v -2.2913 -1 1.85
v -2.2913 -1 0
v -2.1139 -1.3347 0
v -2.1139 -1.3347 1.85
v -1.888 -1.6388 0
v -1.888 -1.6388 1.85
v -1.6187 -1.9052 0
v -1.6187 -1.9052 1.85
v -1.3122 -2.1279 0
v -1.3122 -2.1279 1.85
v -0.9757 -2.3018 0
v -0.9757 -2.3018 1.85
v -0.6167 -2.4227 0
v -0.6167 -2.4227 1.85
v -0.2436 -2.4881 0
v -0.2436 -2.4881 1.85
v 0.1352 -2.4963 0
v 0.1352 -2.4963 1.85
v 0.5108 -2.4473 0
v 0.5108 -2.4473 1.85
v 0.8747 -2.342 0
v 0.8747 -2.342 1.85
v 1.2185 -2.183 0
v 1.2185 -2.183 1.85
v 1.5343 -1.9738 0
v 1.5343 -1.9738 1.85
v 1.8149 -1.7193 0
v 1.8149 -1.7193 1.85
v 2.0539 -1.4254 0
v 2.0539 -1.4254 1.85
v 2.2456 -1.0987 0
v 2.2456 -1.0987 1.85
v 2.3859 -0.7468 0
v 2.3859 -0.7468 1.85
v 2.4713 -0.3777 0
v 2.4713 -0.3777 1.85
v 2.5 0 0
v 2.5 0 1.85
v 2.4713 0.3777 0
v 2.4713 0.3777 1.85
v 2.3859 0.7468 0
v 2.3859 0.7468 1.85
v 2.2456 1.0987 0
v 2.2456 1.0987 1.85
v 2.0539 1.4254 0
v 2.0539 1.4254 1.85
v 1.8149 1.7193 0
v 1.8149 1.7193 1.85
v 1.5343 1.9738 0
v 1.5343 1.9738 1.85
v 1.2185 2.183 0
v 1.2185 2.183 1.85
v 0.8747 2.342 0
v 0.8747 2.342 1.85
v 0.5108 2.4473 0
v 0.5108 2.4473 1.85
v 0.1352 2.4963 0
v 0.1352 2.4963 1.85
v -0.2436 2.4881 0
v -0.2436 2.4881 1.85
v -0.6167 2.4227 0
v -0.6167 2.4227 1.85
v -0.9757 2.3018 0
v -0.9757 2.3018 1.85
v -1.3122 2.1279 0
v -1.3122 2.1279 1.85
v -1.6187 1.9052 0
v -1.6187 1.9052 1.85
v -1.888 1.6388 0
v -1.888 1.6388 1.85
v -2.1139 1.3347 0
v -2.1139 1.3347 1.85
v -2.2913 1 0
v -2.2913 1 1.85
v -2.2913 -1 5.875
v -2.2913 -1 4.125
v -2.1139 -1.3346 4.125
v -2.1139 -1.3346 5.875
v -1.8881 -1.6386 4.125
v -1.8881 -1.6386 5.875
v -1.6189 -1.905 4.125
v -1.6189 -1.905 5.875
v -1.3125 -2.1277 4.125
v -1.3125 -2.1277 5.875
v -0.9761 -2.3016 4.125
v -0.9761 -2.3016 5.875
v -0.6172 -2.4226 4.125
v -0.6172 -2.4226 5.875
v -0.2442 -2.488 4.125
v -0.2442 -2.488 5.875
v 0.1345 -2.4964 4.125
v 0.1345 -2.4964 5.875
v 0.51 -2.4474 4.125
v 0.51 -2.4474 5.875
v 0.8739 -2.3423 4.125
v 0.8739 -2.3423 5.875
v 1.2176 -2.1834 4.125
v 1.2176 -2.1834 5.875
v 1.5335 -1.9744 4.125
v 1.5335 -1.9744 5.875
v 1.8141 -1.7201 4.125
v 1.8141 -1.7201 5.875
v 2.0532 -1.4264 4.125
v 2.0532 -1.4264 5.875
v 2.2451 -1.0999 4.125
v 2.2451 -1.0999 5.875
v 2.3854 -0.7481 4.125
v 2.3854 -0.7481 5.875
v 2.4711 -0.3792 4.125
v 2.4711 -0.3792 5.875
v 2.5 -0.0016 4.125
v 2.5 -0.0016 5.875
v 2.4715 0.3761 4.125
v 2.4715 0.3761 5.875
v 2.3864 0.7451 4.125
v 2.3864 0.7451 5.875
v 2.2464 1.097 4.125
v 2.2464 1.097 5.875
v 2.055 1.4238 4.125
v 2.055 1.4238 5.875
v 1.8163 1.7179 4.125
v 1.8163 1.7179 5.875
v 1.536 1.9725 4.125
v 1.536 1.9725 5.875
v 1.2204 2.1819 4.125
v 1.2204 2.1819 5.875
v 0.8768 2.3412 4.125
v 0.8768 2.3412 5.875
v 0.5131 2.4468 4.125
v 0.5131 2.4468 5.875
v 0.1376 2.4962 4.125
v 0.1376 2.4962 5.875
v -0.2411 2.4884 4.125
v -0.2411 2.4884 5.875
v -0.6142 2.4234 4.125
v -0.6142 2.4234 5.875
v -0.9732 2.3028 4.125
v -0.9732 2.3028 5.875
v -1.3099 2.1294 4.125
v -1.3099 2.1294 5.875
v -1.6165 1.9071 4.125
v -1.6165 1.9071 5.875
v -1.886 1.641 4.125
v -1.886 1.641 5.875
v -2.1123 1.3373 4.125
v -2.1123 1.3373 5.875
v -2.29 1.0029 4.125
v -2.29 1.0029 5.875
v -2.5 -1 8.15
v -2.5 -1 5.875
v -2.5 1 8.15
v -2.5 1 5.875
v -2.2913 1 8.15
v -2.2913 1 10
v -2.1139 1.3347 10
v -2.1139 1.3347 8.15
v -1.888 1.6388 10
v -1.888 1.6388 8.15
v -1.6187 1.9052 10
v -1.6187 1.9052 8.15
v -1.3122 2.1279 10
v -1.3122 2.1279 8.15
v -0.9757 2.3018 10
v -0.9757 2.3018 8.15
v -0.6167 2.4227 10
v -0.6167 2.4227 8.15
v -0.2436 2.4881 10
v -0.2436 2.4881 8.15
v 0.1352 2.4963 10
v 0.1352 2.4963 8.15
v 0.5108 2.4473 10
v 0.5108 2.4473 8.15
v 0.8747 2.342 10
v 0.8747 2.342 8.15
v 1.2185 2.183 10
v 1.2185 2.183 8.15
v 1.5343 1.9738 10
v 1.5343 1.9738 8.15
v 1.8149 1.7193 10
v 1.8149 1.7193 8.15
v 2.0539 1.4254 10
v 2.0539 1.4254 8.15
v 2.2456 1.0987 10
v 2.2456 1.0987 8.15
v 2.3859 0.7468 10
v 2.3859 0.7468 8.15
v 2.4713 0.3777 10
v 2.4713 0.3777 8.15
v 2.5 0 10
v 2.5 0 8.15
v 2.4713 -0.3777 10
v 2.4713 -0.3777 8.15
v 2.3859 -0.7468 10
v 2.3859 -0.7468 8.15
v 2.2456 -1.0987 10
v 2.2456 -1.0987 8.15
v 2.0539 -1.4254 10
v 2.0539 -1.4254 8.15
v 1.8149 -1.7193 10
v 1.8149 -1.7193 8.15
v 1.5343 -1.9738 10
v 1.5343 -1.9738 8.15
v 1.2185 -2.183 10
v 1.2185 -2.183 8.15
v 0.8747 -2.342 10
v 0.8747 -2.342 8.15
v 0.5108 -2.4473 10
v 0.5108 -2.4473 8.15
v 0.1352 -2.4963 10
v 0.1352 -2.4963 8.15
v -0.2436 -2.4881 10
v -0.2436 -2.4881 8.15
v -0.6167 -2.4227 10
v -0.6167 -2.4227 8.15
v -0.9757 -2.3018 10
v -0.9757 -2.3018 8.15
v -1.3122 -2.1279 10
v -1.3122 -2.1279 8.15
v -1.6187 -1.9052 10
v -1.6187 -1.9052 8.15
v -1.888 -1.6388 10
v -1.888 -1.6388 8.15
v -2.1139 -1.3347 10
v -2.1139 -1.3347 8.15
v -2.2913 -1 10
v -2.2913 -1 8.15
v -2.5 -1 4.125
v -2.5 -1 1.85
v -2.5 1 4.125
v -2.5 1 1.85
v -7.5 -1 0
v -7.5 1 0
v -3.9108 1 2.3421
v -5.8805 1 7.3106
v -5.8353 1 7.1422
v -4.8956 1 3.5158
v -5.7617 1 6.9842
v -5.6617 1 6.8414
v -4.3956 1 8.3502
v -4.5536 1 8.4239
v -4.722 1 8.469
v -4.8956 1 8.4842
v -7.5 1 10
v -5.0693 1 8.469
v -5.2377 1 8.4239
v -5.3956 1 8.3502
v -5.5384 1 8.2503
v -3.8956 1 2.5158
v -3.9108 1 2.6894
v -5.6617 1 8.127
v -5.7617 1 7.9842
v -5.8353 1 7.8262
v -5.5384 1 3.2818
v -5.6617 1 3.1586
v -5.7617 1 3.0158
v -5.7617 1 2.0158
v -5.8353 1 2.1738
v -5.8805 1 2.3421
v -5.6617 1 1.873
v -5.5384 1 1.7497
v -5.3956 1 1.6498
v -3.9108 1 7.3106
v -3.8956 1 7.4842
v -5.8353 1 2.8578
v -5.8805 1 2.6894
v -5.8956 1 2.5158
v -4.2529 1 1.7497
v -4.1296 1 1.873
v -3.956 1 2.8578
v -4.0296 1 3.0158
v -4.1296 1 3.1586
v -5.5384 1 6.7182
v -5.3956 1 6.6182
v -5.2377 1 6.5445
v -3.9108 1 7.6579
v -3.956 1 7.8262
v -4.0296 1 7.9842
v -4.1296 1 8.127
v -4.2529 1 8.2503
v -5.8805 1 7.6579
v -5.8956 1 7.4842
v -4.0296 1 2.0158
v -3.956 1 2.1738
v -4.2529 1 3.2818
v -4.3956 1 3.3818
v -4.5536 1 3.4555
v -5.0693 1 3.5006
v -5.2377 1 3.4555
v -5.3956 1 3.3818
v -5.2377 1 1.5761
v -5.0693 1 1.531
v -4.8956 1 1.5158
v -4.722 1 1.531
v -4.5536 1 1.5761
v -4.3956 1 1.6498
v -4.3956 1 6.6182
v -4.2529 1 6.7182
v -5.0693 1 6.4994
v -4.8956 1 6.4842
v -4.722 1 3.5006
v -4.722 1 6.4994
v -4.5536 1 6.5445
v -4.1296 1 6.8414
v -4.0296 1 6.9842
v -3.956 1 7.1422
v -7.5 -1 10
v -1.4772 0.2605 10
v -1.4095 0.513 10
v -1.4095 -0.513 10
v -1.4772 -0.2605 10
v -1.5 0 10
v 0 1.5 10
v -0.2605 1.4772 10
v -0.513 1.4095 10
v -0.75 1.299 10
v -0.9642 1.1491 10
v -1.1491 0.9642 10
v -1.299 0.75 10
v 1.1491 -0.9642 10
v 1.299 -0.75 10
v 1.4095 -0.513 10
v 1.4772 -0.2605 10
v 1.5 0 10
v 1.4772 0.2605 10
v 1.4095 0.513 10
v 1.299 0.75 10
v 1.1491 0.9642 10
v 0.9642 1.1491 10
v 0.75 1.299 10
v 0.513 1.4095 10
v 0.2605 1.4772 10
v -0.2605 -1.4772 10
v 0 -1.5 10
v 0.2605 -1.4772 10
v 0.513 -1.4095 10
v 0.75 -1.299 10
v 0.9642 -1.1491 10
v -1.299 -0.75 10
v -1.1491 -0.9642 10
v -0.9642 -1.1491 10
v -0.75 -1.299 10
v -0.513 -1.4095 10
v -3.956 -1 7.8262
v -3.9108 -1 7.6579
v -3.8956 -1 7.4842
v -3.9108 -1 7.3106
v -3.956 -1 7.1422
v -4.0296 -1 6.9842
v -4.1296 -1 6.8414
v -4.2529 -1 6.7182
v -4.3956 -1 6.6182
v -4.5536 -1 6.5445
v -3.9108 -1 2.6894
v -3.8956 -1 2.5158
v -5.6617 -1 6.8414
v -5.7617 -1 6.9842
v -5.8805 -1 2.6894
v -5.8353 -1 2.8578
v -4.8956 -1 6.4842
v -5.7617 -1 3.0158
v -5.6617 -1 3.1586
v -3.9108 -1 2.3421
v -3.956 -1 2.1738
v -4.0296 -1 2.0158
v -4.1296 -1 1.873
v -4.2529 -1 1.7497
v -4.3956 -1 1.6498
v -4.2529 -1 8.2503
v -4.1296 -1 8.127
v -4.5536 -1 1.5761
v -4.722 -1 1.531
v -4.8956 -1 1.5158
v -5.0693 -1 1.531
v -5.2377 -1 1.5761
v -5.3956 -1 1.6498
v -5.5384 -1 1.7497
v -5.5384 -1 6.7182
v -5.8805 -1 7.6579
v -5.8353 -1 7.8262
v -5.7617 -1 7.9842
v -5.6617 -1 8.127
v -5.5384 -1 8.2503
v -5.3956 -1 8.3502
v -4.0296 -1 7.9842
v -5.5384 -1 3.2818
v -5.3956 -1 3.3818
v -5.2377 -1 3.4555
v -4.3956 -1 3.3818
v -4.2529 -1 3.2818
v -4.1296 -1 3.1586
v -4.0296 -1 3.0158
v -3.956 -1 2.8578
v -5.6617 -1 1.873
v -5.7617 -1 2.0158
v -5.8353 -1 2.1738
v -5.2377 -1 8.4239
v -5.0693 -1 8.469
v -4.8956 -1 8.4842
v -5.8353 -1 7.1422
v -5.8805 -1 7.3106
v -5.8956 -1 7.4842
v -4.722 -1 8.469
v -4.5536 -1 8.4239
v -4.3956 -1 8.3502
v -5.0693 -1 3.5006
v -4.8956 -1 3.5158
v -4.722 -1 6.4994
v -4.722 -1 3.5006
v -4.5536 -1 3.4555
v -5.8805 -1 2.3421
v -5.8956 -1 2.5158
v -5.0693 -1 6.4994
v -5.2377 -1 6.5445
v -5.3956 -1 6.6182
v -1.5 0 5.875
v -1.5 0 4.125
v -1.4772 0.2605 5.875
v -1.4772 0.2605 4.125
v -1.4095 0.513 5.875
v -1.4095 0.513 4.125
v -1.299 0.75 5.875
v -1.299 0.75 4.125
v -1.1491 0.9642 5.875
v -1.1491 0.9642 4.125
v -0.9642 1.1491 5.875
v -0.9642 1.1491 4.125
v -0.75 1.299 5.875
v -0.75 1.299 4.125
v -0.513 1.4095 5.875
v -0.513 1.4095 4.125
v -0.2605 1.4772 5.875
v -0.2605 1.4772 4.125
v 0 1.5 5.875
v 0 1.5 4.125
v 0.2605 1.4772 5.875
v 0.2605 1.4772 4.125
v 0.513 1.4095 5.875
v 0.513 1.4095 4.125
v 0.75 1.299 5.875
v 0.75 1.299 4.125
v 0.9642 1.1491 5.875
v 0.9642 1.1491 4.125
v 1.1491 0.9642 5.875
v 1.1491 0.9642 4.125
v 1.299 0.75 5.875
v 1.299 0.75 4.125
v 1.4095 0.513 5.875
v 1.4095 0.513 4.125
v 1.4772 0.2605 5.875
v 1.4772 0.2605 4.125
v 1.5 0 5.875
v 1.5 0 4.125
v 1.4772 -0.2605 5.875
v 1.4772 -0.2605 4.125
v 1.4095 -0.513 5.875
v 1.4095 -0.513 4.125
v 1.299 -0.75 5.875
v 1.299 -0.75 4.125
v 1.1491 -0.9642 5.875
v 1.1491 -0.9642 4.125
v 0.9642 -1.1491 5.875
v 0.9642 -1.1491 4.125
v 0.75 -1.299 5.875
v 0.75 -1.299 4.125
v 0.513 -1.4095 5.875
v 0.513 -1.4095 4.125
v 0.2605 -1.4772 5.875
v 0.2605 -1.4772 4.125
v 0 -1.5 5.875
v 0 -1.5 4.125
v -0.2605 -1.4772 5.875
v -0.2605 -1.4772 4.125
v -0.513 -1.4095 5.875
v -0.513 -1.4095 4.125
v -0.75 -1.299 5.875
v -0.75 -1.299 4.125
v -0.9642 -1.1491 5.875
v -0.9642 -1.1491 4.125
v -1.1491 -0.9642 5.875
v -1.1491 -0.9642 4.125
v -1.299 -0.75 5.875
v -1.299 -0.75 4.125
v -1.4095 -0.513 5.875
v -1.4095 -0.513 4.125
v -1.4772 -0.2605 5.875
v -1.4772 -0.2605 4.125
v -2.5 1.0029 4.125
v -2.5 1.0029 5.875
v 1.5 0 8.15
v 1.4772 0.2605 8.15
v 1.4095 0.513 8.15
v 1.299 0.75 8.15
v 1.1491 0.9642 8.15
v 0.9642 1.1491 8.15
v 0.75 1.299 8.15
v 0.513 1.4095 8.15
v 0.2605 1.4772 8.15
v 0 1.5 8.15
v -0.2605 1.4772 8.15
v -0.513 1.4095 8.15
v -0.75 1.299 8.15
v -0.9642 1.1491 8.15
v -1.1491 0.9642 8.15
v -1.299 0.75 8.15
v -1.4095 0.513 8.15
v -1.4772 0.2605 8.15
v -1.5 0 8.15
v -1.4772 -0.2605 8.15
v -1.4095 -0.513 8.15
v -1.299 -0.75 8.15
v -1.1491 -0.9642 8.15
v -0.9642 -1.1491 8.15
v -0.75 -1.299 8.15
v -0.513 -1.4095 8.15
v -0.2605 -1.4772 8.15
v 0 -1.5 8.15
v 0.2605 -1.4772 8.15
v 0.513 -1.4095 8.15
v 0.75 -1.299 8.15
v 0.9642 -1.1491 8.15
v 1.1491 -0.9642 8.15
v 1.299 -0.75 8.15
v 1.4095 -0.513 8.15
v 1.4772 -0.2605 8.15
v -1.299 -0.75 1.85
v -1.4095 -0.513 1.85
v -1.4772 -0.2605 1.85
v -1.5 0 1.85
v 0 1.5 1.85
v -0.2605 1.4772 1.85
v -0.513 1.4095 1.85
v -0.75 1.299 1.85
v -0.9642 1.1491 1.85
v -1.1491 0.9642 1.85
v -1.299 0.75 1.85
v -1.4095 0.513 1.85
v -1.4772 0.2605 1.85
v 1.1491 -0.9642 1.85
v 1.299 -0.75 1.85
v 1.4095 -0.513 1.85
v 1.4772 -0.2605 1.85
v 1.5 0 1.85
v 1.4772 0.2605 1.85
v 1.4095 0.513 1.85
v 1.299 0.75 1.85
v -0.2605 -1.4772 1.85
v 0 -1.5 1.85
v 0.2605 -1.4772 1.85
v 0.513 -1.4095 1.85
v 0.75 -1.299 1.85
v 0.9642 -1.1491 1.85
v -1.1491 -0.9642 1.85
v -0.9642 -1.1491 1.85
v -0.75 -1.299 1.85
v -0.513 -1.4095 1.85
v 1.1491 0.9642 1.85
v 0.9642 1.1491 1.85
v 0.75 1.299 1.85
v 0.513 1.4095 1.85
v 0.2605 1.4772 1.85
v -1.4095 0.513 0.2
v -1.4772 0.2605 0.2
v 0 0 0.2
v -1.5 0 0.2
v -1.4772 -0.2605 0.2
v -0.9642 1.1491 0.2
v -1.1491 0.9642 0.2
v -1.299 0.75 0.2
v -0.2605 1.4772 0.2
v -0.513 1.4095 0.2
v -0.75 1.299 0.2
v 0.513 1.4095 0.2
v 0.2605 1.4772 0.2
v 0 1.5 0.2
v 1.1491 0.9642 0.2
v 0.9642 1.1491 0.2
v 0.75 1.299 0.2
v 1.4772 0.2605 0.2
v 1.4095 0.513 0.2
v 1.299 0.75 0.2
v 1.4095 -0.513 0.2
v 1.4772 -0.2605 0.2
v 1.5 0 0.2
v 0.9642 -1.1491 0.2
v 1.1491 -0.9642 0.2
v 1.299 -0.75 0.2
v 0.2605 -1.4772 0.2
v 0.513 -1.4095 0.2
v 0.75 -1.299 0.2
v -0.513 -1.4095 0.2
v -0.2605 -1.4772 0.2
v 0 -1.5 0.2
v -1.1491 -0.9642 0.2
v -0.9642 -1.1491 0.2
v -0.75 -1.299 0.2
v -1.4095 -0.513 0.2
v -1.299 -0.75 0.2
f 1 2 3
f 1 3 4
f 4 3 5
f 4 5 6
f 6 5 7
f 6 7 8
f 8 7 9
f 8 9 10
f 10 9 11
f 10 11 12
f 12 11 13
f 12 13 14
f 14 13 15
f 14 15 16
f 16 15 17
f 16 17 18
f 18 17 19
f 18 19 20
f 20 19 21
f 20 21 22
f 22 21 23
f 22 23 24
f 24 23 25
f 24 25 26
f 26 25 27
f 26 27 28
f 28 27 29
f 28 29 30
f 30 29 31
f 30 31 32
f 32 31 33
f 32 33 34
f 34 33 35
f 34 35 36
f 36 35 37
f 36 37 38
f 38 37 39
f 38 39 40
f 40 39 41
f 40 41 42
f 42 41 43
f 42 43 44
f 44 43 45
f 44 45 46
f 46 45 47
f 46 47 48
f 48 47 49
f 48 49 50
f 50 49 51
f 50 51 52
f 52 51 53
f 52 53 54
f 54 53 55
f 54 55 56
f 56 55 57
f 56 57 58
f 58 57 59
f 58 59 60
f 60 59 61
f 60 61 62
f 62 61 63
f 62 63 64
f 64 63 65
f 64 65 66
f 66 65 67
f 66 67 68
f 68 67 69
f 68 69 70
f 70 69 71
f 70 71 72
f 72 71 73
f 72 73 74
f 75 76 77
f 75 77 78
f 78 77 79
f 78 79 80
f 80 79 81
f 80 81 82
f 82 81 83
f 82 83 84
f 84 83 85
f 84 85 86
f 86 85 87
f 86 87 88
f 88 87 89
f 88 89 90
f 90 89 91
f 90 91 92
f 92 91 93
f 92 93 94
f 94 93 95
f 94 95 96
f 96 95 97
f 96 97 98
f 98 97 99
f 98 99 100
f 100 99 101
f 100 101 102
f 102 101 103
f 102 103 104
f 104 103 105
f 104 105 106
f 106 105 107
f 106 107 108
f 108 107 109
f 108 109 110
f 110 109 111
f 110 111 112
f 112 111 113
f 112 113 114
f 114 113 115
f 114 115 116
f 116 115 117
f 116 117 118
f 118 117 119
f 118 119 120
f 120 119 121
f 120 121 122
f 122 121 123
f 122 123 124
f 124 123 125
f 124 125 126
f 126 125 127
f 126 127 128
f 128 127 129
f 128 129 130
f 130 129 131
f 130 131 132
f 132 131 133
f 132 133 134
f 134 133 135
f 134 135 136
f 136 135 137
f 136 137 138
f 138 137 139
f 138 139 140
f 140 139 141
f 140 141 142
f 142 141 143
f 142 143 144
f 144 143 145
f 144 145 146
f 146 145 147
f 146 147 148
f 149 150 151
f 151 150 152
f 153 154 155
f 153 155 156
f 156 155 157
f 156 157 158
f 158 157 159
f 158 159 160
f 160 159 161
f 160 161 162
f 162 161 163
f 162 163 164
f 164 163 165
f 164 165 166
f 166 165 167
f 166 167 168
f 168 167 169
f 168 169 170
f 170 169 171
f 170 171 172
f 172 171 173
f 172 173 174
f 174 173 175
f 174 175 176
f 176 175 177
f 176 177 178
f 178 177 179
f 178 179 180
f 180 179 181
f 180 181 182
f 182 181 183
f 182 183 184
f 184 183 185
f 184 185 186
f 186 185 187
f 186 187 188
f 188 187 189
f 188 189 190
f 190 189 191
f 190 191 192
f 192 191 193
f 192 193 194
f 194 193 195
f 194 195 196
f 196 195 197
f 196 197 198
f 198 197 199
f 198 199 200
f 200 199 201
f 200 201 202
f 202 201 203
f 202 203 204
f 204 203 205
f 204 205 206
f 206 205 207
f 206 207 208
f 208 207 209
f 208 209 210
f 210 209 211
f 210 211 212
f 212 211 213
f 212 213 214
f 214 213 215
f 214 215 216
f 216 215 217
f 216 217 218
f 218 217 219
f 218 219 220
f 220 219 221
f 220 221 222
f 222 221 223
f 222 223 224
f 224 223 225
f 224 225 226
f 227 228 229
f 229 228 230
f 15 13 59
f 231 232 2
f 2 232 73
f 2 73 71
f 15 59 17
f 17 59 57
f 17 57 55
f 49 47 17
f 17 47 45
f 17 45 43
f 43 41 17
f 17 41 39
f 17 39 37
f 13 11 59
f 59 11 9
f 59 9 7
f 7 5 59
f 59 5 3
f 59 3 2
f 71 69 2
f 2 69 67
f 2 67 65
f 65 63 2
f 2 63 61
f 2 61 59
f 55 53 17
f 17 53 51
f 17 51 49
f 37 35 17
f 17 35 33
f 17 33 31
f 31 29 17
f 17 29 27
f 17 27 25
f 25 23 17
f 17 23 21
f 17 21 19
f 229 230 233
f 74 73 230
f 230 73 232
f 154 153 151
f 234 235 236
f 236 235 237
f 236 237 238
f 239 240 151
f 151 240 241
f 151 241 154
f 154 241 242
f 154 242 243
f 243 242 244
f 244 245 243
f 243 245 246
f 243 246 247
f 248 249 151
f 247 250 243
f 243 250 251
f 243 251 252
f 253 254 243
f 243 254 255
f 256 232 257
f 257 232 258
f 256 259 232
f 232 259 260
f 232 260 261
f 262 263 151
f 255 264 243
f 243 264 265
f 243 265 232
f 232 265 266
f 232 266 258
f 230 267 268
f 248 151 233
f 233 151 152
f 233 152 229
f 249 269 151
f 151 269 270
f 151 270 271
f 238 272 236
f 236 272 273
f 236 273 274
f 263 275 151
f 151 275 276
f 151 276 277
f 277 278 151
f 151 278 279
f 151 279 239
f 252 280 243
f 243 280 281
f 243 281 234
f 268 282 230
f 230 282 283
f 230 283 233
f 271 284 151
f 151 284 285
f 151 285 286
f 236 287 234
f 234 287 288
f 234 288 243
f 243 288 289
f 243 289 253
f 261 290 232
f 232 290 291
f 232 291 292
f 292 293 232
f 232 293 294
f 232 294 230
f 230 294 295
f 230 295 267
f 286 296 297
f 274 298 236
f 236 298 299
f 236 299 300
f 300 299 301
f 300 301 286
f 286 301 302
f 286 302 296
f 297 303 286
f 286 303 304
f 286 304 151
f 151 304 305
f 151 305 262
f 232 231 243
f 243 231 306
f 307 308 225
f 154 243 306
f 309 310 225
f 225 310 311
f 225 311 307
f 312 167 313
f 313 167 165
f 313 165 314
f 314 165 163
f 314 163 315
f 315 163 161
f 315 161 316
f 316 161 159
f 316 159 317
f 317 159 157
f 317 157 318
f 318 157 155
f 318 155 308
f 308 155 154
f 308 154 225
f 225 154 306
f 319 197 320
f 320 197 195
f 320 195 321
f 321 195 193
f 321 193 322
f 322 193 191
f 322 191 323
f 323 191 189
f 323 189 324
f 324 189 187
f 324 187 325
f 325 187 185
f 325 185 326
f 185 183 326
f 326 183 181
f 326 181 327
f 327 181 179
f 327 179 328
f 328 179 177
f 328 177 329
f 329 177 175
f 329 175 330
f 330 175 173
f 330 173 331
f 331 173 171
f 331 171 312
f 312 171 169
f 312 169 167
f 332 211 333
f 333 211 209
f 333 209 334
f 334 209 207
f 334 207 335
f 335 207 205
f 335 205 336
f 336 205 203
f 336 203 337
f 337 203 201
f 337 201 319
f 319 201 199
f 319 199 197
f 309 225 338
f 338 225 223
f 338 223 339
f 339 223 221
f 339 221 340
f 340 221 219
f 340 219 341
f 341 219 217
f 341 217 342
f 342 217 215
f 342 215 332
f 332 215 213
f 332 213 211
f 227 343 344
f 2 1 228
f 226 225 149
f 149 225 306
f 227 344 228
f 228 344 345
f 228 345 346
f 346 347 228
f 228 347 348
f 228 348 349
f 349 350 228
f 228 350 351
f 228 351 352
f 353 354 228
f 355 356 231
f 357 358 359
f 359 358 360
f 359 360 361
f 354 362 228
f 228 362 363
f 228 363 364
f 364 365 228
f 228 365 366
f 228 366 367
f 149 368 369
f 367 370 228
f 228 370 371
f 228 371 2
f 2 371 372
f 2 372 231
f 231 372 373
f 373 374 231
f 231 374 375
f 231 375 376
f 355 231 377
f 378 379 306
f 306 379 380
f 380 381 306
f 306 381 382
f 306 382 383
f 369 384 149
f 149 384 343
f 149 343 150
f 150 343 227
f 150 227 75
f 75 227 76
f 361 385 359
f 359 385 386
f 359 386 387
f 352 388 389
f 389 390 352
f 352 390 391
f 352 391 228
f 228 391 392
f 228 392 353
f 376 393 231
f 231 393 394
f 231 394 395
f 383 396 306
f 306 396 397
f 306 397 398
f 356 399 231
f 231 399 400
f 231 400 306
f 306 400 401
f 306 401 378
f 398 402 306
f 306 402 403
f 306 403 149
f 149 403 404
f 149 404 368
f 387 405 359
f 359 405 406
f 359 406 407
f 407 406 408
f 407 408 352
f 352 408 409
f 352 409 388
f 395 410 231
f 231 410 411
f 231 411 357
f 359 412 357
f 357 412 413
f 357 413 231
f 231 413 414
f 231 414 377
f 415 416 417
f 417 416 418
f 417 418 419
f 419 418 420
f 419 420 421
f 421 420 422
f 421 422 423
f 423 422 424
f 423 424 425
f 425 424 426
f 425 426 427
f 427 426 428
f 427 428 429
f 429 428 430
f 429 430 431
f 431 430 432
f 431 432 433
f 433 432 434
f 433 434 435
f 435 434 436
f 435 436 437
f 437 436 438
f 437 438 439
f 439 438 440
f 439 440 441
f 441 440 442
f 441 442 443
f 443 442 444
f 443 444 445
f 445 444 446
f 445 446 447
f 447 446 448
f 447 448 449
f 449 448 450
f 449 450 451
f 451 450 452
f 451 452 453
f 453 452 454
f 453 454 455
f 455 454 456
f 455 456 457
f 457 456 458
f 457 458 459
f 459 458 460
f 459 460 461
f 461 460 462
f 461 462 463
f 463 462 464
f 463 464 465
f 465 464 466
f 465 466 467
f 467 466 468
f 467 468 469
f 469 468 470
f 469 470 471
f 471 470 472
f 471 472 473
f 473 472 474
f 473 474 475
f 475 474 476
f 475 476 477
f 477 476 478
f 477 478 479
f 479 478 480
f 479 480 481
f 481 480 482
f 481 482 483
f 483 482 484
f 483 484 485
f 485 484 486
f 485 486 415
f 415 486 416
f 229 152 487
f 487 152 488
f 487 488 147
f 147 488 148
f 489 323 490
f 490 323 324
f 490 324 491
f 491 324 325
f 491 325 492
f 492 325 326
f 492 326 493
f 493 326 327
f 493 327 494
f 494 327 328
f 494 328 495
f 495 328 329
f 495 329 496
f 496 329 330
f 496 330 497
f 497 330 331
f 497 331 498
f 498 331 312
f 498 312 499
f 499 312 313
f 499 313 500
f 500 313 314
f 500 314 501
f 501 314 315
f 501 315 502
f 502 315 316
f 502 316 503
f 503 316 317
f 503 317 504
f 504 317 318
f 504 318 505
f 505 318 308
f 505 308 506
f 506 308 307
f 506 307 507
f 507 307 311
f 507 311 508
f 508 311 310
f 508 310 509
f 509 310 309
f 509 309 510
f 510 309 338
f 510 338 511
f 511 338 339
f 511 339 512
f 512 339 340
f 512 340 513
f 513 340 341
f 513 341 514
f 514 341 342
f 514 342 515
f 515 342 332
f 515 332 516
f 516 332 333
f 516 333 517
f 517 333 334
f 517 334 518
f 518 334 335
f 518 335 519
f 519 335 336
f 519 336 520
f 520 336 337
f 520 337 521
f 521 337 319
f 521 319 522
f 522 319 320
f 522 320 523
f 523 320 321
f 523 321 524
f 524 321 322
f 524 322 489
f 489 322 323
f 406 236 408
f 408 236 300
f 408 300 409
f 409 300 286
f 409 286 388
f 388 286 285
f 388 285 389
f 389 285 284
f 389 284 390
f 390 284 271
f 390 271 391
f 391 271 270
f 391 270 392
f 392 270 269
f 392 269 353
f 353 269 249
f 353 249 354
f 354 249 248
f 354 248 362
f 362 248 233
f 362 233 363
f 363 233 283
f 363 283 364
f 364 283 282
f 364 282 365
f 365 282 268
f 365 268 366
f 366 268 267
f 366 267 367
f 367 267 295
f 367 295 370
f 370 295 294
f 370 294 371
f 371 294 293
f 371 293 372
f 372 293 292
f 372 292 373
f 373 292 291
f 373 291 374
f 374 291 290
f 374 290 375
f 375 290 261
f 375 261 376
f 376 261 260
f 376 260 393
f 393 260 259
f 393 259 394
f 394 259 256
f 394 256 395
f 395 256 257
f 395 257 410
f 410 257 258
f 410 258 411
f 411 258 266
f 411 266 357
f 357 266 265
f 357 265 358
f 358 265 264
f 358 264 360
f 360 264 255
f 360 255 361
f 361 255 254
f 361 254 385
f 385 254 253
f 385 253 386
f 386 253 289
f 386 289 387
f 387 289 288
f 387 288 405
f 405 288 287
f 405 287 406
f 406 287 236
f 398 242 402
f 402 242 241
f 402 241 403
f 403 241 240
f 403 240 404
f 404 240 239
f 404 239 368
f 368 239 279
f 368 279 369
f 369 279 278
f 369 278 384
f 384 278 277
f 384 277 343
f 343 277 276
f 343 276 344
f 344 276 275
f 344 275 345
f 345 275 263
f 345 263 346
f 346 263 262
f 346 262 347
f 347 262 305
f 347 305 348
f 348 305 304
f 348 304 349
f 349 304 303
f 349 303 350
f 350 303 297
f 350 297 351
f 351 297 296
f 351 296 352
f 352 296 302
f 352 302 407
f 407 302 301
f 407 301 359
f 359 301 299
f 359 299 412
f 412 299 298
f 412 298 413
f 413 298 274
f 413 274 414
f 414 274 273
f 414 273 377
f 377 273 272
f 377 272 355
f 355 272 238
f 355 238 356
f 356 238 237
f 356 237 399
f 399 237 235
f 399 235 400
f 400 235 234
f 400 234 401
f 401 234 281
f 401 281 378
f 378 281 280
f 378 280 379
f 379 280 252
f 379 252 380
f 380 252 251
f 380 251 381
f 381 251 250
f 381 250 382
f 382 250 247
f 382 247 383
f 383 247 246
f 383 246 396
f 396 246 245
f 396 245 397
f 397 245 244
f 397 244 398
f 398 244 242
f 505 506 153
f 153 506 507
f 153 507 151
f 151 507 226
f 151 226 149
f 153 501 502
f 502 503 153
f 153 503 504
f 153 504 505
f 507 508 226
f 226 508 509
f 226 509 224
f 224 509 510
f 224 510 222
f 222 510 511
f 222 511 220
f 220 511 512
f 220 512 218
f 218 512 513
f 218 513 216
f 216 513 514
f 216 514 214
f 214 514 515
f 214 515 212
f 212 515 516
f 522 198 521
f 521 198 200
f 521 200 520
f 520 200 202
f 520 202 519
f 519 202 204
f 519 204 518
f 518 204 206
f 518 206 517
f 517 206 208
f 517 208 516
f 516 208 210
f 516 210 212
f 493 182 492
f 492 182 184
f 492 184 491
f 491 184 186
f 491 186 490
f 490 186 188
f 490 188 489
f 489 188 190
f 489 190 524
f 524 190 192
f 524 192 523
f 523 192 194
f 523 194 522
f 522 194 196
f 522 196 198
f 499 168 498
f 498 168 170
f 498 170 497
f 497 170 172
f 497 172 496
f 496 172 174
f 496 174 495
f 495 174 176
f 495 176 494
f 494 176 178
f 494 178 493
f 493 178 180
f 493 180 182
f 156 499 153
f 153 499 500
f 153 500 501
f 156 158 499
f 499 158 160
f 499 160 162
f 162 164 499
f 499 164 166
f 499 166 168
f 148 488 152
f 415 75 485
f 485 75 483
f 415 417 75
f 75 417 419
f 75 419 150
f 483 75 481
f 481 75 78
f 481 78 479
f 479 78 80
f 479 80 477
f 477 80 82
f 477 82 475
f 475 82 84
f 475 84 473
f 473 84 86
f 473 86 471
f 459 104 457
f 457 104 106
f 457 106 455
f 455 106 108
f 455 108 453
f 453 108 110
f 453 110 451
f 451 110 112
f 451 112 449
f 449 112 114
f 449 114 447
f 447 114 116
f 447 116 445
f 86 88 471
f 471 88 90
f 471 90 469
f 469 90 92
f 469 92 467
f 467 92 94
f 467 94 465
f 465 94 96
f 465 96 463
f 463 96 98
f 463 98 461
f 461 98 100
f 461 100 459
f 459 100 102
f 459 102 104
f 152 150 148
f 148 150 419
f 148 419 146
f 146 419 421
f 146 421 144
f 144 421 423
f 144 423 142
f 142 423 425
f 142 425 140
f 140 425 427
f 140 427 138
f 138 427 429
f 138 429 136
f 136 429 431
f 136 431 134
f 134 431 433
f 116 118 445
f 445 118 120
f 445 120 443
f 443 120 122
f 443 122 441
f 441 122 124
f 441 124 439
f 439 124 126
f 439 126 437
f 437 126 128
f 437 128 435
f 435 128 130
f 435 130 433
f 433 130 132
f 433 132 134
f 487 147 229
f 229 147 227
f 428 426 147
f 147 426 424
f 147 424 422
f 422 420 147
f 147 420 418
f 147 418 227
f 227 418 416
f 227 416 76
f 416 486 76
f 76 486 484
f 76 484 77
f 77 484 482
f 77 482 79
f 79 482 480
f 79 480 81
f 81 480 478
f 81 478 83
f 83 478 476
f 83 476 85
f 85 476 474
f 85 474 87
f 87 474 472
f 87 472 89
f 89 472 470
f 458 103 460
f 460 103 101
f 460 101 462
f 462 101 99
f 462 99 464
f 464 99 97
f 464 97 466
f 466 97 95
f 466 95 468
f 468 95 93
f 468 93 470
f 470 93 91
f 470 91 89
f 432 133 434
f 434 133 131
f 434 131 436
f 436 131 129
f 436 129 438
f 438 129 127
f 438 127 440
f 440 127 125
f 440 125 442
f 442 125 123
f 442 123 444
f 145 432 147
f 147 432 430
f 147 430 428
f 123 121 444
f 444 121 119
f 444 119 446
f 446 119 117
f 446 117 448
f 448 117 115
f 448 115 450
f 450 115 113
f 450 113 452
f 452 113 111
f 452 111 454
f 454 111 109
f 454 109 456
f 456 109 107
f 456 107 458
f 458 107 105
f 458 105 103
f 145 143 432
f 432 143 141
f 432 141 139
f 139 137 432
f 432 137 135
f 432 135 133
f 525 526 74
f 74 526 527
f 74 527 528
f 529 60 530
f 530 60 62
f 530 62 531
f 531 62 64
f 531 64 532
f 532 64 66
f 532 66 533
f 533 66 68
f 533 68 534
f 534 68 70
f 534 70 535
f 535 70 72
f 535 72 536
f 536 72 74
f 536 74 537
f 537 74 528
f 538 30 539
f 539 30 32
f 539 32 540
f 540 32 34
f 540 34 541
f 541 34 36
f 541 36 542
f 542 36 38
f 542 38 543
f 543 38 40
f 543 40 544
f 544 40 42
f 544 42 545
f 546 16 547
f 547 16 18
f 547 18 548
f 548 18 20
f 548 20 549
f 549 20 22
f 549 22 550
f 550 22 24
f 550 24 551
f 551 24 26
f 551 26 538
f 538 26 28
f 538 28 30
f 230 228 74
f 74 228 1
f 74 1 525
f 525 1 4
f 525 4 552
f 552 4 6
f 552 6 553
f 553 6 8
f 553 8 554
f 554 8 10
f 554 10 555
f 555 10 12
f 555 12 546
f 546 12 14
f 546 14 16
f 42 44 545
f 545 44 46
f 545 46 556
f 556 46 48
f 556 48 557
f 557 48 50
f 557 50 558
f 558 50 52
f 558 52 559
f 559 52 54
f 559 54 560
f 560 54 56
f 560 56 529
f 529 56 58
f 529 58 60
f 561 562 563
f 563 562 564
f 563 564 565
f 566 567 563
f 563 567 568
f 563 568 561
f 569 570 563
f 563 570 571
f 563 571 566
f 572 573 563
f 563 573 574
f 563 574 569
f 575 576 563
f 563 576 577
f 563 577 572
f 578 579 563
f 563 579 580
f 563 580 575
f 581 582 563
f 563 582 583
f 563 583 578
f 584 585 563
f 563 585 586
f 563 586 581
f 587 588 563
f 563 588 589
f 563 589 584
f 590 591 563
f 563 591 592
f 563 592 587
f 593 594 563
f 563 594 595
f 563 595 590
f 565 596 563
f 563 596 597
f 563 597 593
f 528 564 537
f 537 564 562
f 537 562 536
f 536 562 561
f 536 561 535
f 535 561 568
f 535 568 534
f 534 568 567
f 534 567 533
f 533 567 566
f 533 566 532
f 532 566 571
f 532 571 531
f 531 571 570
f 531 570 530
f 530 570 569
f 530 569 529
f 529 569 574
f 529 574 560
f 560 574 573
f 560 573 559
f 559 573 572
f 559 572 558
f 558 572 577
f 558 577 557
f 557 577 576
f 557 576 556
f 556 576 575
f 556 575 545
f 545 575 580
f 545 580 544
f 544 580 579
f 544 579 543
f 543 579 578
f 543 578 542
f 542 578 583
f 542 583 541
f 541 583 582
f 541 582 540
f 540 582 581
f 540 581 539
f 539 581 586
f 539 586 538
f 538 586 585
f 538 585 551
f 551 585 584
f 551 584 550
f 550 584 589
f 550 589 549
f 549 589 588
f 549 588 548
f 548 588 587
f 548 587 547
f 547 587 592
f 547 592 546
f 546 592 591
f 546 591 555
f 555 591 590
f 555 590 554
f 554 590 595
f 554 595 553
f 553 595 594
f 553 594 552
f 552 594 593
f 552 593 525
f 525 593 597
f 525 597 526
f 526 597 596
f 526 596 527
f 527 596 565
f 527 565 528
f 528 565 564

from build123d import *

# Parameters (mm, degrees)
SKETCH1_R                = 2.5
SKETCH1_R_2              = 1.5
BOSS_EXTRUDE2_DEPTH      = 1.95
SKETCH7_W                = 5
SKETCH7_H                = 10
BOSS_EXTRUDE3_DEPTH      = 1
BOSS_EXTRUDE3_DEPTH_BACK = 1
SKETCH8_W                = 1.95
SKETCH8_H                = 2
BOSS_EXTRUDE4_DEPTH      = 0.208712
SKETCH10_R               = 2.5
SKETCH10_R_2             = 1.5
BOSS_EXTRUDE5_DEPTH      = 1.95
SKETCH12_R               = 2.5
SKETCH12_R_2             = 1.5
BOSS_EXTRUDE6_DEPTH      = 0.975
BOSS_EXTRUDE6_DEPTH_BACK = 0.975
SKETCH13_W               = 1.95
SKETCH13_H               = 2.002875352
SKETCH13_H_2             = 2
BOSS_EXTRUDE7_DEPTH      = 0.209969
SKETCH15_R               = 1.5
BOSS_EXTRUDE8_DEPTH      = 0.2
SKETCH16_R               = 1
CUT_EXTRUDE1_DEPTH       = 10
SKETCH17_W               = 5
SKETCH17_H               = 5.480011174
CUT_EXTRUDE2_DEPTH       = 0.1
SKETCH18_W               = 5
SKETCH18_H               = 5.210920168
CUT_EXTRUDE3_DEPTH       = 0.1
SKETCH19_W               = 5
SKETCH19_H               = 5
CUT_EXTRUDE5_DEPTH       = 0.1
SKETCH20_W               = 5
SKETCH20_H               = 5.52517398
CUT_EXTRUDE6_DEPTH       = 0.1


with BuildPart() as part:
    # Sketch1 → Boss-Extrude2 (new body)
    with BuildSketch(Plane.XY):
        Circle(SKETCH1_R)
        Circle(SKETCH1_R_2, mode=Mode.SUBTRACT)
    extrude(amount=BOSS_EXTRUDE2_DEPTH)



with BuildPart() as body_2:
    # Sketch7 → Boss-Extrude3 (new body, two sides)
    with BuildSketch(Plane(origin=(0, 0, 0), x_dir=(1, 0, 0), z_dir=(0, 1, 0))) as boss_extrude3_sk:
        with Locations((-5, -5)):
            Rectangle(SKETCH7_W, SKETCH7_H)
    extrude(amount=BOSS_EXTRUDE3_DEPTH)
    extrude(boss_extrude3_sk.sketch, amount=-BOSS_EXTRUDE3_DEPTH_BACK)


with BuildPart() as part_1:
    add(part.part)

    add(body_2.part)  # Boss-Extrude4 merges body 2
    # Sketch8 → Boss-Extrude4 (add)
    with BuildSketch(Plane(origin=(-2.5, 0, 0), x_dir=(0, 0, -1), z_dir=(1, 0, 0))):
        with Locations((-0.975, 0)):
            Rectangle(SKETCH8_W, SKETCH8_H)
    extrude(amount=BOSS_EXTRUDE4_DEPTH)



with BuildPart() as body_2_2:
    # Sketch10 → Boss-Extrude5 (new body)
    with BuildSketch(Plane.XY.offset(10)):
        Circle(SKETCH10_R)
        Circle(SKETCH10_R_2, mode=Mode.SUBTRACT)
    extrude(amount=-BOSS_EXTRUDE5_DEPTH)


with BuildPart() as body_3:
    # Sketch12 → Boss-Extrude6 (new body, two sides)
    with BuildSketch(Plane.YX.offset(-5)) as boss_extrude6_sk:
        Circle(SKETCH12_R)
        Circle(SKETCH12_R_2, mode=Mode.SUBTRACT)
    extrude(amount=BOSS_EXTRUDE6_DEPTH)
    extrude(boss_extrude6_sk.sketch, amount=-BOSS_EXTRUDE6_DEPTH_BACK)


with BuildPart() as part_2:
    add(part_1.part)

    add(body_2_2.part)  # Boss-Extrude7 merges body 2 2

    add(body_3.part)  # Boss-Extrude7 merges body 3
    # Sketch13 → Boss-Extrude7 (add)
    with BuildSketch(Plane(origin=(-2.5, 0, 0), x_dir=(0, 0, -1), z_dir=(1, 0, 0))):
        with Locations((-5, 0.001437676)):
            Rectangle(SKETCH13_W, SKETCH13_H)
        with Locations((-9.025, 0)):
            Rectangle(SKETCH13_W, SKETCH13_H_2)
    extrude(amount=BOSS_EXTRUDE7_DEPTH)

    # Sketch15 → Boss-Extrude8 (add)
    with BuildSketch(Plane(origin=(0, 0, 0), x_dir=(-1, 0, 0), z_dir=(0, 0, -1))):
        Circle(SKETCH15_R)
    extrude(amount=-BOSS_EXTRUDE8_DEPTH)

    # Sketch16 → Cut-Extrude1 (cut)
    with BuildSketch(Plane(origin=(0, 1, 0), x_dir=(1, 0, 0), z_dir=(0, 1, 0))):
        with Locations((-4.895643924, -7.484223199)):
            Circle(SKETCH16_R)
        with Locations((-4.895643924, -2.515776801)):
            Circle(SKETCH16_R)
    extrude(amount=-CUT_EXTRUDE1_DEPTH, mode=Mode.SUBTRACT)

    # Sketch17 → Cut-Extrude2 (cut)
    with BuildSketch(Plane(origin=(0, 0, 8.05), x_dir=(-1, 0, 0), z_dir=(0, 0, -1))):
        Rectangle(SKETCH17_W, SKETCH17_H)
    extrude(amount=-CUT_EXTRUDE2_DEPTH, mode=Mode.SUBTRACT)

    # Sketch18 → Cut-Extrude3 (cut)
    with BuildSketch(Plane.XY.offset(5.975)):
        Rectangle(SKETCH18_W, SKETCH18_H)
    extrude(amount=-CUT_EXTRUDE3_DEPTH, mode=Mode.SUBTRACT)

    # Sketch19 → Cut-Extrude5 (cut)
    with BuildSketch(Plane(origin=(0, 0, 4.025), x_dir=(-1, 0, 0), z_dir=(0, 0, -1))):
        Rectangle(SKETCH19_W, SKETCH19_H)
    extrude(amount=-CUT_EXTRUDE5_DEPTH, mode=Mode.SUBTRACT)

    # Sketch20 → Cut-Extrude6 (cut)
    with BuildSketch(Plane.XY.offset(1.95)):
        Rectangle(SKETCH20_W, SKETCH20_H)
    extrude(amount=-CUT_EXTRUDE6_DEPTH, mode=Mode.SUBTRACT)


solid = part_2.part
